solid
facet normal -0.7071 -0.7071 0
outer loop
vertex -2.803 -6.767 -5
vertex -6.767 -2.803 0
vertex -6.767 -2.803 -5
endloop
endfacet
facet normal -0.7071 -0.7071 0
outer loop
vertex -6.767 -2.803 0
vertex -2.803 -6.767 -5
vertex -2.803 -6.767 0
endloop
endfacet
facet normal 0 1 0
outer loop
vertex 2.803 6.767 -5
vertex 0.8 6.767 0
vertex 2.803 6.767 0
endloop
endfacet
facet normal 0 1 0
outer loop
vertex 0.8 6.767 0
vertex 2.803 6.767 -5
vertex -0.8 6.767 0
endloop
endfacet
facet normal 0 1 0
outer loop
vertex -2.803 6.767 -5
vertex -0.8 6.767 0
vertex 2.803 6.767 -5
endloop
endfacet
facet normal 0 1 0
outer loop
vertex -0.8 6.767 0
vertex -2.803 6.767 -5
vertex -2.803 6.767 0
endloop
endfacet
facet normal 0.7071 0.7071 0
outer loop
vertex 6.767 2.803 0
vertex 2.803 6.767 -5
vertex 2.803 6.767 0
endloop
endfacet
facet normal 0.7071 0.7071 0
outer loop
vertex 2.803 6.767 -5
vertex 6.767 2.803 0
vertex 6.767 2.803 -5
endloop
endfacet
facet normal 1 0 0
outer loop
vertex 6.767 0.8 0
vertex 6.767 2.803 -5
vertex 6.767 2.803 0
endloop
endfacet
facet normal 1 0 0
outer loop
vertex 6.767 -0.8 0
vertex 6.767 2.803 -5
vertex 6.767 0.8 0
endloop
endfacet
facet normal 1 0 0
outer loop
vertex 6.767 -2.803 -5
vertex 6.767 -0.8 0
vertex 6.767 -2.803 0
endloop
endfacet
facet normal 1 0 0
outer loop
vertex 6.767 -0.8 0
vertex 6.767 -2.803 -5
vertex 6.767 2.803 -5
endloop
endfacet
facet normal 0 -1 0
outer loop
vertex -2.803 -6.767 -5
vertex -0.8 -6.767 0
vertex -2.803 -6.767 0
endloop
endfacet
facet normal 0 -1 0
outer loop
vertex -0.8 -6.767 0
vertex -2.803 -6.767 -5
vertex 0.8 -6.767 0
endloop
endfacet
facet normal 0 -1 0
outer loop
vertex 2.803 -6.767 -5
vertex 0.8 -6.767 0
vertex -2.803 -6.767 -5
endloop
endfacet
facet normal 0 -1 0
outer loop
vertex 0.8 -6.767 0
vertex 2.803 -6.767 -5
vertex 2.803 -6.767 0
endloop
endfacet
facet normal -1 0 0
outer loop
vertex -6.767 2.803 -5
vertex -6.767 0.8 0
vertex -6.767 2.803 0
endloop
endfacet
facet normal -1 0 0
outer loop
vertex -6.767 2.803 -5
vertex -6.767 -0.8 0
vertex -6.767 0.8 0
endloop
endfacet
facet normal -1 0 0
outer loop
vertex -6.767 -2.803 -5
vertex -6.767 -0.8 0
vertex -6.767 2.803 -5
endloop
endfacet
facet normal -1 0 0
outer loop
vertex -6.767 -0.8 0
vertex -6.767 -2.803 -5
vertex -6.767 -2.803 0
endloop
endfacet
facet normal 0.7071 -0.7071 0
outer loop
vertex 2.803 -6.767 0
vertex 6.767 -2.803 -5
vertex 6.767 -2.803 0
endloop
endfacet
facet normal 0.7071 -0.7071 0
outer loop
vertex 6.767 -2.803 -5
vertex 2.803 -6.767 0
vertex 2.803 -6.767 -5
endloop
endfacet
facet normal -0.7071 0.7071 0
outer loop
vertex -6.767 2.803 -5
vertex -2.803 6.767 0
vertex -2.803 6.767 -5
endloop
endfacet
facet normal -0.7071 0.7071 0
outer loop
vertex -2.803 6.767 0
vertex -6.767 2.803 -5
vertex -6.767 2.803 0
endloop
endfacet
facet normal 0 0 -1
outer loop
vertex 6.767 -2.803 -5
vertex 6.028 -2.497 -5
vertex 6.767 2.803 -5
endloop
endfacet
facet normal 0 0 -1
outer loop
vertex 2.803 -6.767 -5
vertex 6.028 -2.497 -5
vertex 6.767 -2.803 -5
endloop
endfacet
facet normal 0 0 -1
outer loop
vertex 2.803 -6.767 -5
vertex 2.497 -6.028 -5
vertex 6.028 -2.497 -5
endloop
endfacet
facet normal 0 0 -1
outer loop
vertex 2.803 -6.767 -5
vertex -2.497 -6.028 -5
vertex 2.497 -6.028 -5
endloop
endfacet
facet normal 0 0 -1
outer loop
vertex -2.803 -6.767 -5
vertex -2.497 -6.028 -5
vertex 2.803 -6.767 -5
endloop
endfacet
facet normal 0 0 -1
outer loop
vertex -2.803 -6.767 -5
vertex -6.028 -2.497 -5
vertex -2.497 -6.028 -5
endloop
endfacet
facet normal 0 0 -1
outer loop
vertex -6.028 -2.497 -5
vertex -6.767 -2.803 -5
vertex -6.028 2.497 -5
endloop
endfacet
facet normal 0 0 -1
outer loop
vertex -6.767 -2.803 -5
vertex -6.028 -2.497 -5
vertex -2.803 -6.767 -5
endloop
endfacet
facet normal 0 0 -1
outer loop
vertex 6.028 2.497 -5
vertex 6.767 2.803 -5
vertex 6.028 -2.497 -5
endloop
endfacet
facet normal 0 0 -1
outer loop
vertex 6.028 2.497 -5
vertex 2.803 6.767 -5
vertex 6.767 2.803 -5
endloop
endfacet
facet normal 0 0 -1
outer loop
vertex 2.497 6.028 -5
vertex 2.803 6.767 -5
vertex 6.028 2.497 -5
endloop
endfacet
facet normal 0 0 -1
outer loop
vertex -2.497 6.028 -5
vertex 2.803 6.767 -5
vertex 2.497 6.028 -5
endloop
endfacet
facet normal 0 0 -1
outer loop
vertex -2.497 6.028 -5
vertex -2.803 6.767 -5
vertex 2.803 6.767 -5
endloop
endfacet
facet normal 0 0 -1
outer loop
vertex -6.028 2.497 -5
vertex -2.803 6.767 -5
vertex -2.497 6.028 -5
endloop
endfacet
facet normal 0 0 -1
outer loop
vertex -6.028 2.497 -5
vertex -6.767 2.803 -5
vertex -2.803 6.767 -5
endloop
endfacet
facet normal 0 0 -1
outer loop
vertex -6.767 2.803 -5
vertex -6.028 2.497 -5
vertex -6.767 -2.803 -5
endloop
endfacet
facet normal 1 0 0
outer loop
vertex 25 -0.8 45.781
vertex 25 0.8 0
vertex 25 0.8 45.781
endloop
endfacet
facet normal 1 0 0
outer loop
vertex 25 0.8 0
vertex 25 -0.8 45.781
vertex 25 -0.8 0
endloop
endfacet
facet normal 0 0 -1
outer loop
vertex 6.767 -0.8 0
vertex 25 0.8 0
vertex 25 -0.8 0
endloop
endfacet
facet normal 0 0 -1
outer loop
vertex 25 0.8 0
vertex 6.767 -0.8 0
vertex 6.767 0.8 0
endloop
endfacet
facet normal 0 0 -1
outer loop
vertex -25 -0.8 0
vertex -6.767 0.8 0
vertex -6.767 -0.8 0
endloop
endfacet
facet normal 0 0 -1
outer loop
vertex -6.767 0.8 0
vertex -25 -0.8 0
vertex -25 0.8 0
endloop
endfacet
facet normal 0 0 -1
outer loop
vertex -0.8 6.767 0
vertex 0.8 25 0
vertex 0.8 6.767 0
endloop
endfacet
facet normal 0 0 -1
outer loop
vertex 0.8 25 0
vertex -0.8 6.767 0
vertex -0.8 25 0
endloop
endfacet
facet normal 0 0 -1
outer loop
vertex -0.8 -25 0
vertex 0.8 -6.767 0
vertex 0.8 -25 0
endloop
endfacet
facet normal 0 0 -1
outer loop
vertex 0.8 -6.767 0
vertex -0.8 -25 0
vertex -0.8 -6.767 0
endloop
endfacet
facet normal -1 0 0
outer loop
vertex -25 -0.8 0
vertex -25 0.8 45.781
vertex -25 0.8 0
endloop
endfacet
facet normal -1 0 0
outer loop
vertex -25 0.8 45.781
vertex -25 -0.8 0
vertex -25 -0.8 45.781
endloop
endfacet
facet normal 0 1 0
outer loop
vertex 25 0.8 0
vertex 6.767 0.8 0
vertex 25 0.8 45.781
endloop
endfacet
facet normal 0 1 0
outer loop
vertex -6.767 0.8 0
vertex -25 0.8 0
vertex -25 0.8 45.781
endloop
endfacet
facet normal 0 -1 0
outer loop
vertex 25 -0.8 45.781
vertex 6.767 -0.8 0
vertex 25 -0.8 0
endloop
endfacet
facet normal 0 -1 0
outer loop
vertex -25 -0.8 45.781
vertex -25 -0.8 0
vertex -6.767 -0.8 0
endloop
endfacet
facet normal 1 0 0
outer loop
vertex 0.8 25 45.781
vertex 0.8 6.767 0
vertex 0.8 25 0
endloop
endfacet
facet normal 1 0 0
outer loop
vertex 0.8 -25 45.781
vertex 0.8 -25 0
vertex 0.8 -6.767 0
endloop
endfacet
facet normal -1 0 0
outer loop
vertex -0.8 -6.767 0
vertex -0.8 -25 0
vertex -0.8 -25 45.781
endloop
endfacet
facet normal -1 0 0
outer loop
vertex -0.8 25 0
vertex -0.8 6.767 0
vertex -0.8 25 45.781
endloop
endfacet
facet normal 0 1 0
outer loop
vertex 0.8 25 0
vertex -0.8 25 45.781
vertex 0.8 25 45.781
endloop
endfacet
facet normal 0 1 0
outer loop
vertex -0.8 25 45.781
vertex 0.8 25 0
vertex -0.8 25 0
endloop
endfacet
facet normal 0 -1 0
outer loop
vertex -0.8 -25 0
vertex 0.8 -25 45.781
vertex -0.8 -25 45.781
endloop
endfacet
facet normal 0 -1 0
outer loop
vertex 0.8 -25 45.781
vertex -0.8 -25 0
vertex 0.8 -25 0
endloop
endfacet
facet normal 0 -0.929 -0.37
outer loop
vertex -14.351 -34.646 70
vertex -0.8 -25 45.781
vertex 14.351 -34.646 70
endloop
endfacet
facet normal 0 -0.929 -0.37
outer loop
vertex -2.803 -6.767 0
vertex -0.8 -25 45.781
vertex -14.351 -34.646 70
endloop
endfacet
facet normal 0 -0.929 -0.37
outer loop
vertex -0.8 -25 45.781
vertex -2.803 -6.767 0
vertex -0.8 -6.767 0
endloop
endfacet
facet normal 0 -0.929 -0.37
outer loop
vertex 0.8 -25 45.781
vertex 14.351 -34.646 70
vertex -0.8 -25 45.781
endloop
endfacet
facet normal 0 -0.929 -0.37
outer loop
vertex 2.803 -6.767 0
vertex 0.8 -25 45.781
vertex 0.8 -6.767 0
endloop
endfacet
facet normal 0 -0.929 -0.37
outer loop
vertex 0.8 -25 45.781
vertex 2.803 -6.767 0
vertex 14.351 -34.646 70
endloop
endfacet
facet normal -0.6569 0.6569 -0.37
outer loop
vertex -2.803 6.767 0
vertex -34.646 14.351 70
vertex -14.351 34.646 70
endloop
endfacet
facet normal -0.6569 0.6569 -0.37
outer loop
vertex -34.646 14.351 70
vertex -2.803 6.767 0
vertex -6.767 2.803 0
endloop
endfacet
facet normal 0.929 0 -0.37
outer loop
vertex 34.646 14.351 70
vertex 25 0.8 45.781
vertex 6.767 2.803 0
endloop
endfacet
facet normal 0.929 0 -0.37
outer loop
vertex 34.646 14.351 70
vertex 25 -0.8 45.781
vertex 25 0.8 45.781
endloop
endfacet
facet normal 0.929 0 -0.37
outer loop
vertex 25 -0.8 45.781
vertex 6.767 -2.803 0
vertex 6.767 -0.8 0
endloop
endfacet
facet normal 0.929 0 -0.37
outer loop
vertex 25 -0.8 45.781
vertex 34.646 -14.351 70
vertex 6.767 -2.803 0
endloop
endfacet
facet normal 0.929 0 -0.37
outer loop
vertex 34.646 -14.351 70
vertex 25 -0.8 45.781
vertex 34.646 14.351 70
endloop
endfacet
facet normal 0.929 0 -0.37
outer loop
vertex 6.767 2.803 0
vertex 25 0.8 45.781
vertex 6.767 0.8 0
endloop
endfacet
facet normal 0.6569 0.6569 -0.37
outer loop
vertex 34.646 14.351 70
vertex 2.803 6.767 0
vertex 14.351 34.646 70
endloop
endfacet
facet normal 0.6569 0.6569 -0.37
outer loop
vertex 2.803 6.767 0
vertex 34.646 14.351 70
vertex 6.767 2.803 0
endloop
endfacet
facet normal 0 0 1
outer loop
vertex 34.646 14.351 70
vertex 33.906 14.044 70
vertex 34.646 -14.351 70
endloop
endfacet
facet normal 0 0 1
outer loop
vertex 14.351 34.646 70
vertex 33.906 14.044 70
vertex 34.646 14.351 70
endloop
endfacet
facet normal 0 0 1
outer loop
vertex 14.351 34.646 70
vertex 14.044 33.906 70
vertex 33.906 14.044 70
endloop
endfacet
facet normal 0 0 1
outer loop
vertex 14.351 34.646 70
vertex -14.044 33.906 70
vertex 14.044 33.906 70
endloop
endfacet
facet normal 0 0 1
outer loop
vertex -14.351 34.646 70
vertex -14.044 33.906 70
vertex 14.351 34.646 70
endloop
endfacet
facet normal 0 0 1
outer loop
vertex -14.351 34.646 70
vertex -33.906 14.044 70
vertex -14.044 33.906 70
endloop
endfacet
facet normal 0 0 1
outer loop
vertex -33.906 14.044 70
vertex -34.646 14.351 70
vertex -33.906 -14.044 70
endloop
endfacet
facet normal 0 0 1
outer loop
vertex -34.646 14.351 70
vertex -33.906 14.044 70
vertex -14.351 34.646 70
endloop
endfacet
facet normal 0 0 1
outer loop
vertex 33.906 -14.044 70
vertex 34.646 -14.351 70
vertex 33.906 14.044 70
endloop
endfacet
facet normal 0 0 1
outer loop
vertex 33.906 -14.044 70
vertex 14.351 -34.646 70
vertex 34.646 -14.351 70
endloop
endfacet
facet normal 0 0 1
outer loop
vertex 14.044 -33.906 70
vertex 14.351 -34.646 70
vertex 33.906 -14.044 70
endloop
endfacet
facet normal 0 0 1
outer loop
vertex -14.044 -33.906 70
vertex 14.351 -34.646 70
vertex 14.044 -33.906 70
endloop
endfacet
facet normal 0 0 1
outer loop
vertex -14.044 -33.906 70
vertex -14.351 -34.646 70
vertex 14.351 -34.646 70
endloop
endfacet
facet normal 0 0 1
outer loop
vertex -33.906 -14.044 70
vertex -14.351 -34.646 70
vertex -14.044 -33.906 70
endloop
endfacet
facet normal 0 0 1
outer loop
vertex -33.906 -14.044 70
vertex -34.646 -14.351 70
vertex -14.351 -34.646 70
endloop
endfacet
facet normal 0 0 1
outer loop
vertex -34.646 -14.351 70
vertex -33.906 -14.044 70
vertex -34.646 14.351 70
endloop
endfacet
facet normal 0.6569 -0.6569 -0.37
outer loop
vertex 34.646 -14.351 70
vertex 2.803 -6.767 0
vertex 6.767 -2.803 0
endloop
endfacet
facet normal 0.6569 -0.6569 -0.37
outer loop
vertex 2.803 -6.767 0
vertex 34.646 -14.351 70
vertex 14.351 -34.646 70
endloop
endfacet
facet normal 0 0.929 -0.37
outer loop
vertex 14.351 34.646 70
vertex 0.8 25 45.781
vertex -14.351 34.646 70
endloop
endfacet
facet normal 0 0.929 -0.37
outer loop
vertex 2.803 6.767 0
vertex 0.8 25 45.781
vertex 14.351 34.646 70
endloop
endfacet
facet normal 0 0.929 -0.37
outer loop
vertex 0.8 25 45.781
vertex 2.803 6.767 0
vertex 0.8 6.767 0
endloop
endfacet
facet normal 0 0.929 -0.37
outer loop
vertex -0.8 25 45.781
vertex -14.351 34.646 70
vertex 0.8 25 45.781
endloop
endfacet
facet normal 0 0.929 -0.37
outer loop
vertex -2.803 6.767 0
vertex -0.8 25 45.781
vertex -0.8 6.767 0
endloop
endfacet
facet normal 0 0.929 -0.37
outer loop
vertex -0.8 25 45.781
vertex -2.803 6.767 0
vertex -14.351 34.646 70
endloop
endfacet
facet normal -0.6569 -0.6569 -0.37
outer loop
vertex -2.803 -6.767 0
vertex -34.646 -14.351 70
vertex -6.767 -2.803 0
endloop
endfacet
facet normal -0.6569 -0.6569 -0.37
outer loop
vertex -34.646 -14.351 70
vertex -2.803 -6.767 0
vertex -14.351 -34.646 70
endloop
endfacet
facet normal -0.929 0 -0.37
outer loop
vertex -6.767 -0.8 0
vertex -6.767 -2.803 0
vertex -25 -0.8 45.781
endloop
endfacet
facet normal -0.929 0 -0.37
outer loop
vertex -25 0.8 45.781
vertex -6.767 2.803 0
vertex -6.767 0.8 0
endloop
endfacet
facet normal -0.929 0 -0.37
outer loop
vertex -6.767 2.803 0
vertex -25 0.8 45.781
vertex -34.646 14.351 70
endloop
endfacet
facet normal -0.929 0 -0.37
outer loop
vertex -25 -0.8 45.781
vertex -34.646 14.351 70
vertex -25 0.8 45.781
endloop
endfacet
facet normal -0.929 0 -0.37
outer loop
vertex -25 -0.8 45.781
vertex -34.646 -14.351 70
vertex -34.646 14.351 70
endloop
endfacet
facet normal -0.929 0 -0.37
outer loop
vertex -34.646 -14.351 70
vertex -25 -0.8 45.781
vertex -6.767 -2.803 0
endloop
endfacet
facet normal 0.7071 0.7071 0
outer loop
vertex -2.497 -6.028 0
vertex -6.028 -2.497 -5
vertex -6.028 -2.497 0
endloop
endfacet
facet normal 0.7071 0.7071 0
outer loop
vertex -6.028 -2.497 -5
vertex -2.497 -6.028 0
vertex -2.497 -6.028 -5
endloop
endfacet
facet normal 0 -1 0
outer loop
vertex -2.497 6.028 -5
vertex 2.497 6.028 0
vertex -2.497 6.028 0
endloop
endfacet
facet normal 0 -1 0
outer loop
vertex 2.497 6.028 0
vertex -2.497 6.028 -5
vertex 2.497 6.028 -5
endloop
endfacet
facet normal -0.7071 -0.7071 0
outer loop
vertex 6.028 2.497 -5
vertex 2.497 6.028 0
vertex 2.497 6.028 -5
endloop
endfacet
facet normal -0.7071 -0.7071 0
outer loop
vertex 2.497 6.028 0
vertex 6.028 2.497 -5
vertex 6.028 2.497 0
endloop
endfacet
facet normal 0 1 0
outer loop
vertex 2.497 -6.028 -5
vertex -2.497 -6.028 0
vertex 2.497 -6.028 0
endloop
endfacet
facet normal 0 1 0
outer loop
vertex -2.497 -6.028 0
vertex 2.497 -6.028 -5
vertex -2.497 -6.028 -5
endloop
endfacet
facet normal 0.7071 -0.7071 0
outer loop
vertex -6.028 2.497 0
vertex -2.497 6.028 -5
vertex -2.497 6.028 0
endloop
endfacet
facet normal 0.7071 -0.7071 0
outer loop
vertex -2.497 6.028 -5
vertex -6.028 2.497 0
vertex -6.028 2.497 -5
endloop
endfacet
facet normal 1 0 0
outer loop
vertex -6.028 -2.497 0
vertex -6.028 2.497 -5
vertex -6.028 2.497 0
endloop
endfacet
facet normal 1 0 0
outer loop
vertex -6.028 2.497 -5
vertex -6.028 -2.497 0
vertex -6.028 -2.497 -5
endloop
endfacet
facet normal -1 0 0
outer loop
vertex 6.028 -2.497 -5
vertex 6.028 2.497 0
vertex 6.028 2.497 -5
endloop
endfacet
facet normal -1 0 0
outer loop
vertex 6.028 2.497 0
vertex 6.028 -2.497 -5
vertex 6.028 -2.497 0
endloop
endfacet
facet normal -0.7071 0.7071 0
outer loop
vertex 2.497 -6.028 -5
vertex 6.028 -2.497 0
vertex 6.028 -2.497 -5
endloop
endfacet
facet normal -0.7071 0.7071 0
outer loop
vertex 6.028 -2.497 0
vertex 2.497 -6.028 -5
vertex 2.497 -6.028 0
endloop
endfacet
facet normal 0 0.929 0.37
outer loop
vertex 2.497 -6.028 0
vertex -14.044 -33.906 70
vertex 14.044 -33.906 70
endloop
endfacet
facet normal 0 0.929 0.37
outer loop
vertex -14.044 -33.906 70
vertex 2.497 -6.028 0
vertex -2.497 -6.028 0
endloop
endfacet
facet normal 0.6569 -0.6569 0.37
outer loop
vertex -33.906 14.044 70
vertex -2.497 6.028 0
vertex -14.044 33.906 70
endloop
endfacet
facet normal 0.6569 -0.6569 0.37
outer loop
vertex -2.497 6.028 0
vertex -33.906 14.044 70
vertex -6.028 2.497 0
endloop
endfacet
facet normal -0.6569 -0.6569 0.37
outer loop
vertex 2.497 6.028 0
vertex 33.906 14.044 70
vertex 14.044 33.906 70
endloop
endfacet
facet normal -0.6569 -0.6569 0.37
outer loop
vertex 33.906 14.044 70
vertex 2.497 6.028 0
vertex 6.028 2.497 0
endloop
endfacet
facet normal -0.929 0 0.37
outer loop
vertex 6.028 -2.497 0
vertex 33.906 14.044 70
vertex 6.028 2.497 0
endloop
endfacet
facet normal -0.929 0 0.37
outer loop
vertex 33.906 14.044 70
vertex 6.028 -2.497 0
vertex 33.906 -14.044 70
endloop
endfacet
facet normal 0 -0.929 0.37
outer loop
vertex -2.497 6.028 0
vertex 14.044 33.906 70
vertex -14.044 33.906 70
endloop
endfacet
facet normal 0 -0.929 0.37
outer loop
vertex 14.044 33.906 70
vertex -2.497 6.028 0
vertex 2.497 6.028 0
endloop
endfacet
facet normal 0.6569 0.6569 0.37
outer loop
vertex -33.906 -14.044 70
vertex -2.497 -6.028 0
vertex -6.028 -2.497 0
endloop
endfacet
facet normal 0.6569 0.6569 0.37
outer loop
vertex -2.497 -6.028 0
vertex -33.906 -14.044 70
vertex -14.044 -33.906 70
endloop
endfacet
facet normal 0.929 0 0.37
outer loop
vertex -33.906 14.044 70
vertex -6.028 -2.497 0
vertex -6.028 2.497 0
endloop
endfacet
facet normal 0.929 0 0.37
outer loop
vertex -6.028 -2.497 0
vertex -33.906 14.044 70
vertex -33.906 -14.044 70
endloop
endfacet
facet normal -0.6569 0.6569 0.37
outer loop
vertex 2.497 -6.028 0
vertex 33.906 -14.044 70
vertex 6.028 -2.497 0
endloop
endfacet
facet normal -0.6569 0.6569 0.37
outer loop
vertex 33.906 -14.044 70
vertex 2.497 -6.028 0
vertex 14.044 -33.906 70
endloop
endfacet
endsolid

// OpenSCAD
difference() {
    union() {
        translate([0, 0, -5]) rotate([0,0,22.5]) cylinder(h=5, d=14.65, $fn=8);
        translate([0, 0, 25]) cube([50, 1.6, 50], center=true);
        translate([0, 0, 25]) cube([1.6, 50, 50], center=true);
        translate([0, 0, 0]) rotate([0,0,22.5]) cylinder(h=70, d1=14.65, d2=75, $fn=8);
    };
        union() {
        translate([0, 0, -5]) rotate([0,0,22.5]) cylinder(h=5, d=13.05, $fn=8);
        translate([0, 0, 0]) rotate([0,0,22.5]) cylinder(h=70, d1=13.05, d2=73.4, $fn=8);
    };

};
